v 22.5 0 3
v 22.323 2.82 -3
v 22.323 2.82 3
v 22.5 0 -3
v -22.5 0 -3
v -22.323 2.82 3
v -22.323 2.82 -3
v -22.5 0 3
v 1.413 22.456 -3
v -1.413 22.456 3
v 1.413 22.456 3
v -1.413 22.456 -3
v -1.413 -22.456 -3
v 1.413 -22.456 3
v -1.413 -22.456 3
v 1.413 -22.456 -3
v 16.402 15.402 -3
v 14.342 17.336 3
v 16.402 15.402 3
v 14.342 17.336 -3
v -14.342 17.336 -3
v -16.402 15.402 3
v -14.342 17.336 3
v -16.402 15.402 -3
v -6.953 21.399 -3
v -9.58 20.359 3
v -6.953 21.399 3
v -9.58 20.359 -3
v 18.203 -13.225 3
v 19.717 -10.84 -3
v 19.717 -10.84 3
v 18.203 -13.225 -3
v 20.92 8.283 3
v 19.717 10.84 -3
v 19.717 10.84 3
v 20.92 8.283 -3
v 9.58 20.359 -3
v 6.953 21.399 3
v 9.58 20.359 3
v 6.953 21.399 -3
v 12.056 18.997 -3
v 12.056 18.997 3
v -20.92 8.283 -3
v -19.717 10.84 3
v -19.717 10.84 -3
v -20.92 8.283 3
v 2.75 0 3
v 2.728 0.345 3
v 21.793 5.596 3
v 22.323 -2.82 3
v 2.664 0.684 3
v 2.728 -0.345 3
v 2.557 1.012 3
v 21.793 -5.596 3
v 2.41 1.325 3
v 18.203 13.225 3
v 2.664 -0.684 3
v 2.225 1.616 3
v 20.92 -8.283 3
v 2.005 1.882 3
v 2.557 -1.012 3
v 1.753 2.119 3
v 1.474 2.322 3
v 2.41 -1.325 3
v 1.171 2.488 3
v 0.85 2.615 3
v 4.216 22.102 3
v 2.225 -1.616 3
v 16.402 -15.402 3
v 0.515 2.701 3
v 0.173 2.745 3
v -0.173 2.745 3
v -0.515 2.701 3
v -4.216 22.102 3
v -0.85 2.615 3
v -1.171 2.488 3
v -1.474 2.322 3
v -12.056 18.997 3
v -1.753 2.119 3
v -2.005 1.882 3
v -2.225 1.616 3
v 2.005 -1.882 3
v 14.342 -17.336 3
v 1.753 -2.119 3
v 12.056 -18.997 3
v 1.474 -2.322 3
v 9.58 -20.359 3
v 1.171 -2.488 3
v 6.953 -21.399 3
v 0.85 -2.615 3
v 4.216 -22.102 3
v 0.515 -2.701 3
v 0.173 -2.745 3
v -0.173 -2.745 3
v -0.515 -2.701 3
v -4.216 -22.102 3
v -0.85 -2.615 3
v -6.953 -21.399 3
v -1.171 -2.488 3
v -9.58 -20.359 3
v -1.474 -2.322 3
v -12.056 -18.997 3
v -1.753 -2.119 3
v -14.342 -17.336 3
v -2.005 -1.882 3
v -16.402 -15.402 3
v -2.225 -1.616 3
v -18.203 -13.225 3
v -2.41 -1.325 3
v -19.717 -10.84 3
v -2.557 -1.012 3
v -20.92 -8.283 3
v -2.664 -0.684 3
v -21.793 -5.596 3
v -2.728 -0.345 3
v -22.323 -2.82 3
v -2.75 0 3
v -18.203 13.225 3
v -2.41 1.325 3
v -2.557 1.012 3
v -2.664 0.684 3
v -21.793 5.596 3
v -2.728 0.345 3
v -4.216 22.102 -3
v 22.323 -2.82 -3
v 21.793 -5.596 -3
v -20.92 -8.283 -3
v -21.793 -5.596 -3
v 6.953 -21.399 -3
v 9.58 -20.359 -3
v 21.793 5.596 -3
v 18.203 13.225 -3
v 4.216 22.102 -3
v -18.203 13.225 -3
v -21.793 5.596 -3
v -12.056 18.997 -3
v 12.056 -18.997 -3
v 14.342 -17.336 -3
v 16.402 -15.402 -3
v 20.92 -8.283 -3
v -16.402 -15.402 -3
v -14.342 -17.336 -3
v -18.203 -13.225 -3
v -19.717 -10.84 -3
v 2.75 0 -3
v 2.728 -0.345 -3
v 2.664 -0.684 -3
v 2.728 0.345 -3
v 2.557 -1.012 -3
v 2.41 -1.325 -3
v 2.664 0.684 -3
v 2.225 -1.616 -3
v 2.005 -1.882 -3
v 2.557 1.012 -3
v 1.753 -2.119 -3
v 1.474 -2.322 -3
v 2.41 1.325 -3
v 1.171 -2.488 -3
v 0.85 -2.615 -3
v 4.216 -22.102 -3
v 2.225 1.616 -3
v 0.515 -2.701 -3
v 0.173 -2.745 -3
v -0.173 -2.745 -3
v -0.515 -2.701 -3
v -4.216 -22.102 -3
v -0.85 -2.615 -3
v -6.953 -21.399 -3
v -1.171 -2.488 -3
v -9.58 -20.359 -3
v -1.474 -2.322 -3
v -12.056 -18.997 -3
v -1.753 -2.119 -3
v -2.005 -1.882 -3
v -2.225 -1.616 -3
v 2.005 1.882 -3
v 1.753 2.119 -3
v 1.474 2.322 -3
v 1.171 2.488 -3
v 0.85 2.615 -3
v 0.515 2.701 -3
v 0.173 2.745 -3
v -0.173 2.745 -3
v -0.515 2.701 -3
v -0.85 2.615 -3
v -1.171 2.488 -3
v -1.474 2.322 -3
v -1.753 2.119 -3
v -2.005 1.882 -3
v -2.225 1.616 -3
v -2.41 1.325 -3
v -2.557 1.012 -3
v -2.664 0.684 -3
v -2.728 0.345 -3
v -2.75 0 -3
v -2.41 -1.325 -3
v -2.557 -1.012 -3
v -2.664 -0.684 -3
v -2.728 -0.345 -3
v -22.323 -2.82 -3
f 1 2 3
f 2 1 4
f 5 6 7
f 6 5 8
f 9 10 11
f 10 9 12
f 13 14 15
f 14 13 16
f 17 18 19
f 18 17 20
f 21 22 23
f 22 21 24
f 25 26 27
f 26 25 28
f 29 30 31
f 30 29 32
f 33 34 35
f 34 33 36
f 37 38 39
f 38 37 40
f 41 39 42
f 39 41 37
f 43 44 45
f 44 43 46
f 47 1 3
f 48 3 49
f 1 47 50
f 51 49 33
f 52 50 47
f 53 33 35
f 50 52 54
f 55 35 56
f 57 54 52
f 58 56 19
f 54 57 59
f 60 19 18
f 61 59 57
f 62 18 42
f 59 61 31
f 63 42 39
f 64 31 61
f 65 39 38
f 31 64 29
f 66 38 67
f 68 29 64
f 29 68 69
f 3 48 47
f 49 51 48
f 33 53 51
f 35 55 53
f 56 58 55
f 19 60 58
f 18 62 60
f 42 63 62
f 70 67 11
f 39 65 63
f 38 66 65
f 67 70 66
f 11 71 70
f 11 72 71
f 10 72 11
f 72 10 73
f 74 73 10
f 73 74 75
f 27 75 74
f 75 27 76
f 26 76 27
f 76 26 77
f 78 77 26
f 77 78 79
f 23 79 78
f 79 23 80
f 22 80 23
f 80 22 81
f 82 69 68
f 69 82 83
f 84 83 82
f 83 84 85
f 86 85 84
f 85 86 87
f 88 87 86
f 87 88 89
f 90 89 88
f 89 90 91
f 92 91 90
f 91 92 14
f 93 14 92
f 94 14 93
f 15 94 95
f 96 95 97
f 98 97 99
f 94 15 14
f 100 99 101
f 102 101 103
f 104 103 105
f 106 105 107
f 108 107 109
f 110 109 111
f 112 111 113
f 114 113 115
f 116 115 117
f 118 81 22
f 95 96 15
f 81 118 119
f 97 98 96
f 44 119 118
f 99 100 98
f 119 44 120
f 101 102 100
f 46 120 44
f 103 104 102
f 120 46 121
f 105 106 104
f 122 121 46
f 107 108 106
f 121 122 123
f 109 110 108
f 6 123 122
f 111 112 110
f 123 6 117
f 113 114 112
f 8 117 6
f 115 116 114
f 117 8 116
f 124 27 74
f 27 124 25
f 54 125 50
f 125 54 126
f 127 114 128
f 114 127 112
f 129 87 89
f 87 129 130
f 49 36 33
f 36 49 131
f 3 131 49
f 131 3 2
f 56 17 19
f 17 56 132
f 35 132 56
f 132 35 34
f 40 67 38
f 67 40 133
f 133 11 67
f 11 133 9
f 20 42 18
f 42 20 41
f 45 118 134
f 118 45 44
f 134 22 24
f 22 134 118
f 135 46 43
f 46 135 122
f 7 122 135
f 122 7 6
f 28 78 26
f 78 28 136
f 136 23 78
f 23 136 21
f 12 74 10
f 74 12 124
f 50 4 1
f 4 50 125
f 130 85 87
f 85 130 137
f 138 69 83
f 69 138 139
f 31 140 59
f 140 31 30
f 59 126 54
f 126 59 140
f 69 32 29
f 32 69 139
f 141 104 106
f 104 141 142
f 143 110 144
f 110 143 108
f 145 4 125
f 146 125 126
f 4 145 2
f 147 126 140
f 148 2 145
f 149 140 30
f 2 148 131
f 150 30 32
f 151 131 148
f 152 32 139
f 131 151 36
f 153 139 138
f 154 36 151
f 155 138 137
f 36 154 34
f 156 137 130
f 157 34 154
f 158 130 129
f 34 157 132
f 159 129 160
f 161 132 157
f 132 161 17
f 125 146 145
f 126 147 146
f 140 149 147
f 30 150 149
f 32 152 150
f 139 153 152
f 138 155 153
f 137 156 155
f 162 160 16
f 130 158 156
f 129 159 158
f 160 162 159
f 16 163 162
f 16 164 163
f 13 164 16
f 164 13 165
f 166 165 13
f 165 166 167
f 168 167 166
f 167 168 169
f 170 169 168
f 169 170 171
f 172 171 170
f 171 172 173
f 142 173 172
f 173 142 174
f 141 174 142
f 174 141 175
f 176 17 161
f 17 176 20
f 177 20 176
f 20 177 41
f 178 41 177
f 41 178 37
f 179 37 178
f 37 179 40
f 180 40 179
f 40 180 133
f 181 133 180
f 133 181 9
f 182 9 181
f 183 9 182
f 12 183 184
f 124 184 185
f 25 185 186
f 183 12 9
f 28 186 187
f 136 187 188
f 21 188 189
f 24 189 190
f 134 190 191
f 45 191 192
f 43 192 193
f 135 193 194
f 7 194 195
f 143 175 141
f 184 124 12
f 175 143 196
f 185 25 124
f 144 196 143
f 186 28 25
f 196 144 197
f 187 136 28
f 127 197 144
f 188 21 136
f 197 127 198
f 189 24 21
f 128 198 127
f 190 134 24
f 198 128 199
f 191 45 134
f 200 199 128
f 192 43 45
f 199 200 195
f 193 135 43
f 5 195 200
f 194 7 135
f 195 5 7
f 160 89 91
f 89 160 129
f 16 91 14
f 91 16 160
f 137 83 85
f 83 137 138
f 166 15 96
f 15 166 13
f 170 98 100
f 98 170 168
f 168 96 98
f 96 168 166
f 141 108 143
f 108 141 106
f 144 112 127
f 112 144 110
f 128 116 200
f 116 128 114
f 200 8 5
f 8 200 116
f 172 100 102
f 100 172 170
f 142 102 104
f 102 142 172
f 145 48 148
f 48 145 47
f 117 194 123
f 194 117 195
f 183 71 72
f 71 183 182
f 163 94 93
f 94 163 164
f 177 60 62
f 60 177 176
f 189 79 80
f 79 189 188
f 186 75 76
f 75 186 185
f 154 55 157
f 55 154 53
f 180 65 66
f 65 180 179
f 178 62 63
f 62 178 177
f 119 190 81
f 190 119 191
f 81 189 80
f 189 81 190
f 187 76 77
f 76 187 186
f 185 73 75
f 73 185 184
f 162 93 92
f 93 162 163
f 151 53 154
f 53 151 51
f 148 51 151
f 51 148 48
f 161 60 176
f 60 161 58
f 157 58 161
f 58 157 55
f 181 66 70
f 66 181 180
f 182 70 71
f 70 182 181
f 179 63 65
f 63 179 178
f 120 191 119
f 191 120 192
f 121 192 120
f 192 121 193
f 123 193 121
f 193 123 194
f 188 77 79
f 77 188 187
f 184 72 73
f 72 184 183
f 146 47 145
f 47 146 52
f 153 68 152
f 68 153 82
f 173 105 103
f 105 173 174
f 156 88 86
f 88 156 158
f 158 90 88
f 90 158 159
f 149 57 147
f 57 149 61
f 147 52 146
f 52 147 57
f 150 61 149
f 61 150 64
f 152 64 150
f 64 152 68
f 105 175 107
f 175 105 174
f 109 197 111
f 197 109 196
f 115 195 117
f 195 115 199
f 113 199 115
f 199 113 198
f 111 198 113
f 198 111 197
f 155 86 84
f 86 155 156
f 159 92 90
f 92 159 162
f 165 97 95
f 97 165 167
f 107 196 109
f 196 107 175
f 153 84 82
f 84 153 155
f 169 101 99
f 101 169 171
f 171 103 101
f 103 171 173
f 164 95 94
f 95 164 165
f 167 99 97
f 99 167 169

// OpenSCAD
$fn = 50;


difference() {
	union() {
		translate(v = [0, 0, -3.0000000000]) {
			cylinder(h = 6, r = 22.5000000000);
		}
	}
	union() {
		translate(v = [0, 0, -100.0000000000]) {
			cylinder(h = 200, r = 2.7500000000);
		}
	}
}
